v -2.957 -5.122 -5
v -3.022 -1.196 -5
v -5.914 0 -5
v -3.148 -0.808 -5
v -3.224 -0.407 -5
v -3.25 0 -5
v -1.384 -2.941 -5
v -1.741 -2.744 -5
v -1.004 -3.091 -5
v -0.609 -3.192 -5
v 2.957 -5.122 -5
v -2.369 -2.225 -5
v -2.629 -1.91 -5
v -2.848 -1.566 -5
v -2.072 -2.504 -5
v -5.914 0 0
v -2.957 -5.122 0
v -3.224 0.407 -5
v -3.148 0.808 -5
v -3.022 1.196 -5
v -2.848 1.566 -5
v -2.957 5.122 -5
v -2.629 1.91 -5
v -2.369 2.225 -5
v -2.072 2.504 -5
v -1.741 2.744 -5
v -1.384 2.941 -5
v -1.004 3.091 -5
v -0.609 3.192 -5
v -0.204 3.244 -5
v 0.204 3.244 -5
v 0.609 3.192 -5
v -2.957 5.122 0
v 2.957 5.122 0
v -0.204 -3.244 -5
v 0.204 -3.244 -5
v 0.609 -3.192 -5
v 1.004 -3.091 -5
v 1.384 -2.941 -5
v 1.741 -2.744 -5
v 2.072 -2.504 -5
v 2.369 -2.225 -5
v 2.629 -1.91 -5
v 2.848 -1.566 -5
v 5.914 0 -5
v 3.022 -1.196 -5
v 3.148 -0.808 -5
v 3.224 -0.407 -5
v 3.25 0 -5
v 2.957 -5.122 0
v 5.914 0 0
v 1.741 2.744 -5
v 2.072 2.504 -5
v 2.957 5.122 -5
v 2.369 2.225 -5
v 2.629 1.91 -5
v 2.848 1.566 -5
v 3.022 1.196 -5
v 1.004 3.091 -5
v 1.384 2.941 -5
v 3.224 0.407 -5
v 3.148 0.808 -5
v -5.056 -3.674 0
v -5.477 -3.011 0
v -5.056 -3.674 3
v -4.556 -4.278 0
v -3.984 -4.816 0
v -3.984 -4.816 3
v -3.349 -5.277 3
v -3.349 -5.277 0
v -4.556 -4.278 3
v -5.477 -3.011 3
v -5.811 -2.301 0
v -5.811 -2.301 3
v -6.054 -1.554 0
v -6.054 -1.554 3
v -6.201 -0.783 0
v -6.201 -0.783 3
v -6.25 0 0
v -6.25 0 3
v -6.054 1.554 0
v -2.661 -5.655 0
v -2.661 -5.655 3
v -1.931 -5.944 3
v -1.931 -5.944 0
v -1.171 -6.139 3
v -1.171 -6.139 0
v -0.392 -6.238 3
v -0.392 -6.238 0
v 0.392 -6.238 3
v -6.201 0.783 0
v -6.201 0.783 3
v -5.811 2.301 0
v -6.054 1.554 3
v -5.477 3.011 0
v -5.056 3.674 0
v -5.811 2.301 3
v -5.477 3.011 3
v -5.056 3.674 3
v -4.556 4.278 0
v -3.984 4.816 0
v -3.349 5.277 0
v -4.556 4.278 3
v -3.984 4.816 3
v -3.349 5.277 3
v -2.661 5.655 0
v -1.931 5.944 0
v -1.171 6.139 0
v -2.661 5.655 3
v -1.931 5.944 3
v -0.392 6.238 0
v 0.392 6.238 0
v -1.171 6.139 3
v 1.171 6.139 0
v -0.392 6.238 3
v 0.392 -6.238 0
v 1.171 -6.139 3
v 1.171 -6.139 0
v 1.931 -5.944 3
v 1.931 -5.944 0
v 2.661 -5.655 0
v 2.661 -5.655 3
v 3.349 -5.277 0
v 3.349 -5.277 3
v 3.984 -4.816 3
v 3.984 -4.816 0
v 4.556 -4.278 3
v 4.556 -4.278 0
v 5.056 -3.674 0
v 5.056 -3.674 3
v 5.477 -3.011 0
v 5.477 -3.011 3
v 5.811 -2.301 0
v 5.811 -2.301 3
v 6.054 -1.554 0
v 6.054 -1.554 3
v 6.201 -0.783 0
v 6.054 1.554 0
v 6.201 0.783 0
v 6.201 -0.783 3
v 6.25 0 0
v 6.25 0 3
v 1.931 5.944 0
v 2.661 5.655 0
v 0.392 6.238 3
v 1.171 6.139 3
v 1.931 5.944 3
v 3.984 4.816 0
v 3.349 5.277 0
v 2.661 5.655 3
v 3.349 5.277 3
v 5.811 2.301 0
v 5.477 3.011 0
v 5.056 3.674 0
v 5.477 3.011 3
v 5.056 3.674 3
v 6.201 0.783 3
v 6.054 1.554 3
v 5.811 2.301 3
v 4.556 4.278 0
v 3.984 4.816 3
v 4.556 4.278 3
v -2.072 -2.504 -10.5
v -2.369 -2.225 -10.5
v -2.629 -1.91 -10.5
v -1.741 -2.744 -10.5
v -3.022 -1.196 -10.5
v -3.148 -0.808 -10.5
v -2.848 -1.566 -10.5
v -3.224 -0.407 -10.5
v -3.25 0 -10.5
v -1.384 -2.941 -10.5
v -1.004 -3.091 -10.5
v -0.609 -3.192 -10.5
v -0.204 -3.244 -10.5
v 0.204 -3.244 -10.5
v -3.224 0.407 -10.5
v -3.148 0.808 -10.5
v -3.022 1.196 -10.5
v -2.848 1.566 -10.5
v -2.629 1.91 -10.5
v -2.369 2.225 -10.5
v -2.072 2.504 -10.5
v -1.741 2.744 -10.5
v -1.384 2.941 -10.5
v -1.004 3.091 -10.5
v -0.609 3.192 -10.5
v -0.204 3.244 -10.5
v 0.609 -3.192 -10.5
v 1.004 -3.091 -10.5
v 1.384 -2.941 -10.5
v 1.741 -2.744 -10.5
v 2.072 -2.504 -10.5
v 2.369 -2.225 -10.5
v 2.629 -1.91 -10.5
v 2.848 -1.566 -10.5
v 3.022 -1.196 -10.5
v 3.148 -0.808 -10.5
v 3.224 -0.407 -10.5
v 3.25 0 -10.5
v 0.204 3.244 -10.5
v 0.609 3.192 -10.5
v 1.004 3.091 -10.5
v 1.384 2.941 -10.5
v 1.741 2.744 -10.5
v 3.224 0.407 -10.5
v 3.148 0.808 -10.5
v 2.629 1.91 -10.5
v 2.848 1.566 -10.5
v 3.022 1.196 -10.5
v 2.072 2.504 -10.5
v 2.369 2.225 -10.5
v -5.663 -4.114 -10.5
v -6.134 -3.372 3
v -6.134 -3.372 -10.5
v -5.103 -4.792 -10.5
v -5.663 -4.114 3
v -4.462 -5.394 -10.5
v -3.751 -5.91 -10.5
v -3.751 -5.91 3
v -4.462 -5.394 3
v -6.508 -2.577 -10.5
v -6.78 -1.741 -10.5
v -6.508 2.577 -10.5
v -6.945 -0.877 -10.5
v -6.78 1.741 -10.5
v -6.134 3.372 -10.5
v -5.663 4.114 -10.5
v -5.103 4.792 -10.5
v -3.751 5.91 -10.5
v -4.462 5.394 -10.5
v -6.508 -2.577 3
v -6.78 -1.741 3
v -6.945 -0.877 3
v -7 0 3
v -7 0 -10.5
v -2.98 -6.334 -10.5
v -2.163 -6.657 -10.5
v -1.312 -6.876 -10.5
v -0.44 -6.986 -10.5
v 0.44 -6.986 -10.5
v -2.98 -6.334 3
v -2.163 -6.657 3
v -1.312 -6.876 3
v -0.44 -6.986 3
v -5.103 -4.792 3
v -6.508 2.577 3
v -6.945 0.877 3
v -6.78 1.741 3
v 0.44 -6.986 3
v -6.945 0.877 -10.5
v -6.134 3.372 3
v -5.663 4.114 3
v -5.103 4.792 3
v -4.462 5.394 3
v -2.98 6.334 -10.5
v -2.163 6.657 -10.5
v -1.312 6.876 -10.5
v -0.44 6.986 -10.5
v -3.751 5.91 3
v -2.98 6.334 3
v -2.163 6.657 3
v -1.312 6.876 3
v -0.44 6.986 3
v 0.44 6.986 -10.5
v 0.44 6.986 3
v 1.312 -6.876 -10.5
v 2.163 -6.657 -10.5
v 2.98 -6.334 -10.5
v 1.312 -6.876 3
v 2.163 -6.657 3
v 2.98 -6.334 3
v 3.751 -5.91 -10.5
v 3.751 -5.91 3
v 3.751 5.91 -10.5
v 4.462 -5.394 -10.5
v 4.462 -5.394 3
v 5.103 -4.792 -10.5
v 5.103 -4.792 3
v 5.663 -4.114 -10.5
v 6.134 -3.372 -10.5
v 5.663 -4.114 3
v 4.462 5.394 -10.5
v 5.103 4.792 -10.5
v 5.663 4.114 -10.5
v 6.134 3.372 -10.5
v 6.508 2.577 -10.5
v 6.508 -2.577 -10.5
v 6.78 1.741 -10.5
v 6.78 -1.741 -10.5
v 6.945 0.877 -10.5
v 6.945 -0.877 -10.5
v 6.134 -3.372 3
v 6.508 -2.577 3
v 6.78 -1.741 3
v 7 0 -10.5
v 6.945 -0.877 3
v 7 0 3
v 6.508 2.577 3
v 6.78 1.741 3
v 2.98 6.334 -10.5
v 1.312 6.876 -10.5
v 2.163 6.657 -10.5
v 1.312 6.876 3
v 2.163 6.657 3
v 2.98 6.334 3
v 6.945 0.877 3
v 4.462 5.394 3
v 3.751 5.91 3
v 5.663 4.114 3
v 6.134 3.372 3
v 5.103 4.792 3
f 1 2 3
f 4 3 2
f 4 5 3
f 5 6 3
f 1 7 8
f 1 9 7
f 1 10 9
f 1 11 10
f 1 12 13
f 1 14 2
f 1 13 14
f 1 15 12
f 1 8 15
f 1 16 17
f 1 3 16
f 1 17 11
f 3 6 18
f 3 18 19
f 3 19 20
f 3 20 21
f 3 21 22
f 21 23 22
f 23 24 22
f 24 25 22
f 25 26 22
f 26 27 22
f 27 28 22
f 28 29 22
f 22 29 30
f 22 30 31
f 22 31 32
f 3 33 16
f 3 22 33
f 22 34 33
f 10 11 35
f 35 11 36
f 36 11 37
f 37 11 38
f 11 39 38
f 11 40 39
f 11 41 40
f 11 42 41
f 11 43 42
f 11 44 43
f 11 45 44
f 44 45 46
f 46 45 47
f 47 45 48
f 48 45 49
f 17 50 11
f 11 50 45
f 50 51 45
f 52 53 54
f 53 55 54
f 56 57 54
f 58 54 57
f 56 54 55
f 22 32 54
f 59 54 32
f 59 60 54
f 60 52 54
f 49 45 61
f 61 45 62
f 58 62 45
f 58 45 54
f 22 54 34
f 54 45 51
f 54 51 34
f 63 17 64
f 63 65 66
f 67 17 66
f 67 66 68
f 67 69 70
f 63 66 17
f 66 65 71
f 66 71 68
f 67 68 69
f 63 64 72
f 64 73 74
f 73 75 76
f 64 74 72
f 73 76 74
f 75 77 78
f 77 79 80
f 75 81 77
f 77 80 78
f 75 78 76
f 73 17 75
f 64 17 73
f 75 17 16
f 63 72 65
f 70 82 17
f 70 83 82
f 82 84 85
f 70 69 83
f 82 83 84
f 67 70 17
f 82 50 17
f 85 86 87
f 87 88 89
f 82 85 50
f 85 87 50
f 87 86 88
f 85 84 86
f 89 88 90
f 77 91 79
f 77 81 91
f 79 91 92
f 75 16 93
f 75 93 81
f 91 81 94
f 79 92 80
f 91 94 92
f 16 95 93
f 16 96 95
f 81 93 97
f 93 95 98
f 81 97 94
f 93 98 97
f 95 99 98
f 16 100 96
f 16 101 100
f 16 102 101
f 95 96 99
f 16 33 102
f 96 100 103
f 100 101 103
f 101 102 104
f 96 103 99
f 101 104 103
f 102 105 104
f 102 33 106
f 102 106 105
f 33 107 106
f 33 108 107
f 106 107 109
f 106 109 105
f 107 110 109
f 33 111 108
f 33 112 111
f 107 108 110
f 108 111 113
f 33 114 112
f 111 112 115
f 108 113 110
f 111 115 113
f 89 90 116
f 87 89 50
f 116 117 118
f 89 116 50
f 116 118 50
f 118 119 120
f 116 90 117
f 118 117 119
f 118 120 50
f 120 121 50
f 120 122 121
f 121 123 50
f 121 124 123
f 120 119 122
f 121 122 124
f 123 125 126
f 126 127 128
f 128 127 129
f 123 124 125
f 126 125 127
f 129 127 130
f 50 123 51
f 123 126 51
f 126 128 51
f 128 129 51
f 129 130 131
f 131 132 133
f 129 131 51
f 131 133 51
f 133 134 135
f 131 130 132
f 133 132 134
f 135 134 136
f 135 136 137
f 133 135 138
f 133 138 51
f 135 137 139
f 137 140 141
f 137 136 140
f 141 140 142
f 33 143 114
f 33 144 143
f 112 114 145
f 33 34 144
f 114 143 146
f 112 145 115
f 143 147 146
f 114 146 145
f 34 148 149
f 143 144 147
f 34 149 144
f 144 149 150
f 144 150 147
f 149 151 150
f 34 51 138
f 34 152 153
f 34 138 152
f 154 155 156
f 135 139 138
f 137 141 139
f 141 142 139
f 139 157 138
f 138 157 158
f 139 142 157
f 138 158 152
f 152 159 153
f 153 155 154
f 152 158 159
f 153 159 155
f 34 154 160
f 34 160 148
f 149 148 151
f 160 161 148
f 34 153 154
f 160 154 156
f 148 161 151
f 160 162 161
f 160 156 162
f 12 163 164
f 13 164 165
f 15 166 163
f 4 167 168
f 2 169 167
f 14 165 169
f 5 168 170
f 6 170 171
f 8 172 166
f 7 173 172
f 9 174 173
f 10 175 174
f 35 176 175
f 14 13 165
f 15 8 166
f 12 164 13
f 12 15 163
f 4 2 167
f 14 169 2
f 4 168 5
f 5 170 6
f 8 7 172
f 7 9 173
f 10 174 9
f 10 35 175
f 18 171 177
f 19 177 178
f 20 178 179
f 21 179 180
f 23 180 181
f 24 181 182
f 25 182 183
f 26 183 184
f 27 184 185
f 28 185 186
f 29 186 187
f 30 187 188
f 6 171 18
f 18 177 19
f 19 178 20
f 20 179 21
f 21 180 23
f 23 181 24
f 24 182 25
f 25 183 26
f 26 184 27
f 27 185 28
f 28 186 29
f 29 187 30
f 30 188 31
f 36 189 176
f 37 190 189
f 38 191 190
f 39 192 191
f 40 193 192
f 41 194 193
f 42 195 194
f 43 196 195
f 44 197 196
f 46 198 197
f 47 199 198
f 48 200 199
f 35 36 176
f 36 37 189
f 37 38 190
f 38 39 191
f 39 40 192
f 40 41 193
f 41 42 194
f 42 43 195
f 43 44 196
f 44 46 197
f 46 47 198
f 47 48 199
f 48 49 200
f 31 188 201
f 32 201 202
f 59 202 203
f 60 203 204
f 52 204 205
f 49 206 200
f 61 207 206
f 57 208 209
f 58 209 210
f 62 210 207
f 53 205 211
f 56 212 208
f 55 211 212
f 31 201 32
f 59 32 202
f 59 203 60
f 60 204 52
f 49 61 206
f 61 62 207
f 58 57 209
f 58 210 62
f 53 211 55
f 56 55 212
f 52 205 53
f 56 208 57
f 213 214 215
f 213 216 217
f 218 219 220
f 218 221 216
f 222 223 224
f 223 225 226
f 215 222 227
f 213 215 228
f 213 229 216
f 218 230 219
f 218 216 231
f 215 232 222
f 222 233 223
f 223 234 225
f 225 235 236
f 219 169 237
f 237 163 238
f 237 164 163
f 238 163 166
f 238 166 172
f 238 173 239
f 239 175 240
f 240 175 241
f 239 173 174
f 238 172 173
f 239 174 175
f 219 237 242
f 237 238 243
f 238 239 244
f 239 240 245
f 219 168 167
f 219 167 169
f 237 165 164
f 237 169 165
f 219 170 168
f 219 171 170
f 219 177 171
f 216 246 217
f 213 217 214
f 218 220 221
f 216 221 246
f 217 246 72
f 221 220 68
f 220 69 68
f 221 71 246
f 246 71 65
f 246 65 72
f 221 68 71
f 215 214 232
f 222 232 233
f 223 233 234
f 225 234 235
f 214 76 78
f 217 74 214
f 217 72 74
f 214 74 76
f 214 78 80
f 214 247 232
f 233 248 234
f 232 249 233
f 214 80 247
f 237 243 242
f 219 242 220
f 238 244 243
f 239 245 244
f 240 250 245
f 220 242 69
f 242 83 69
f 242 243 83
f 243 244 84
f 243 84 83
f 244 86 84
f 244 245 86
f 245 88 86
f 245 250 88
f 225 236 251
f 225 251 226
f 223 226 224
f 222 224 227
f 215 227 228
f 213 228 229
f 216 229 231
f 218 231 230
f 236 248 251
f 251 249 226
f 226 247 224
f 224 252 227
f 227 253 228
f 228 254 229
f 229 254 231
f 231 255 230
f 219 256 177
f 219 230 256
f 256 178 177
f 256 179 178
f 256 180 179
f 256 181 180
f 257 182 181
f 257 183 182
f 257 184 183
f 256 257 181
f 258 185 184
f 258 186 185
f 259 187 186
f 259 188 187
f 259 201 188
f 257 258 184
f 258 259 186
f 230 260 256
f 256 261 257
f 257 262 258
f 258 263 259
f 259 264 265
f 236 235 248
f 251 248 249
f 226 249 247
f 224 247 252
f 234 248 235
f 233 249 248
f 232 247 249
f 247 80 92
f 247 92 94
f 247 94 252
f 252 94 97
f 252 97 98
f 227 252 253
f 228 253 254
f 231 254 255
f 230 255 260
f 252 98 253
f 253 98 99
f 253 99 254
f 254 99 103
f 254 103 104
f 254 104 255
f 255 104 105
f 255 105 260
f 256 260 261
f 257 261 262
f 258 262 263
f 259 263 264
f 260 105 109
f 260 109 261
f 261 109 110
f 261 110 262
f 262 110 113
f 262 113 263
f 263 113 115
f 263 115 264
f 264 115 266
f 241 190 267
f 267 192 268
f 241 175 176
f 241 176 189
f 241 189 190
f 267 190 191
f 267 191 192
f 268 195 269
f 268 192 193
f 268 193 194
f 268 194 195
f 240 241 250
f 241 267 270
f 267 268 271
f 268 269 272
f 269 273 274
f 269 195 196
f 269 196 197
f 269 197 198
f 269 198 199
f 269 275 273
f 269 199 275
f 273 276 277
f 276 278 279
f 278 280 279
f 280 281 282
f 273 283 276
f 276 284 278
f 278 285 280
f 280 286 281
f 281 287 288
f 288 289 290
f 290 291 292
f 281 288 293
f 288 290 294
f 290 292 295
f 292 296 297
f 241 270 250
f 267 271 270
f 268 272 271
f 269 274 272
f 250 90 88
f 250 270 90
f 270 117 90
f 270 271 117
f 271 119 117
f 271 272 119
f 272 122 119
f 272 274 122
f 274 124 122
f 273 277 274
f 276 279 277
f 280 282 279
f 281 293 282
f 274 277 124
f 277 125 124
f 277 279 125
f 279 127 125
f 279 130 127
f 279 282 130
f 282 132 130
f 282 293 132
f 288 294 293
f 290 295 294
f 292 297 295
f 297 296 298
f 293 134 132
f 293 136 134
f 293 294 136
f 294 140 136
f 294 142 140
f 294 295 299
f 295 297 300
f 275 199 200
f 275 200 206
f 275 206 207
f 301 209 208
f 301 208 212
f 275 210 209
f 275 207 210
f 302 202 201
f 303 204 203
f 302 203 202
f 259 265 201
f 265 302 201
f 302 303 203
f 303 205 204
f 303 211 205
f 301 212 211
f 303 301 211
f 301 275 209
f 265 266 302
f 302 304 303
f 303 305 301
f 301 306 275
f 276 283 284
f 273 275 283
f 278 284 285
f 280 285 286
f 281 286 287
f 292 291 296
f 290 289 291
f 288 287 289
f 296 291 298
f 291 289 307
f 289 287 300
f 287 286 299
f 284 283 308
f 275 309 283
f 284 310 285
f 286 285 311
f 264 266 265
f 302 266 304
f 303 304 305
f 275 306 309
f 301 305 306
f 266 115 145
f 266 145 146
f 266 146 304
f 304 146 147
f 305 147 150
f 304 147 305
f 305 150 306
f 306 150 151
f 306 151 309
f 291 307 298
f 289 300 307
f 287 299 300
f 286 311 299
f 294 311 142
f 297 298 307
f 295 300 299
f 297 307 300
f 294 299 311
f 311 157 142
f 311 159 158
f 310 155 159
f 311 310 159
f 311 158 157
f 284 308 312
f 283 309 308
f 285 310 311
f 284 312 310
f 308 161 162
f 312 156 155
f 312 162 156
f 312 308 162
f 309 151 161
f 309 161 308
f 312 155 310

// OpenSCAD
$fn = 50;


difference() {
	union() {
		translate(v = [0, 0, -10.5000000000]) {
			cylinder(h = 13.5000000000, r = 7.0000000000);
		}
	}
	union() {
		translate(v = [0, 0, 0]) {
			rotate(a = [0, 0, 0]) {
				difference() {
					union() {
						translate(v = [0, 0, -5]) {
							linear_extrude(height = 5) {
								polygon(points = [[5.9142500000, 0.0000000000], [2.9571250000, 5.1218907443], [-2.9571250000, 5.1218907443], [-5.9142500000, 0.0000000000], [-2.9571250000, -5.1218907443], [2.9571250000, -5.1218907443]]);
							}
						}
					}
					union();
				}
			}
		}
		#cylinder(h = 3, r = 6.2500000000);
		#translate(v = [0, 0, -100.0000000000]) {
			cylinder(h = 200, r = 3.2500000000);
		}
	}
}
